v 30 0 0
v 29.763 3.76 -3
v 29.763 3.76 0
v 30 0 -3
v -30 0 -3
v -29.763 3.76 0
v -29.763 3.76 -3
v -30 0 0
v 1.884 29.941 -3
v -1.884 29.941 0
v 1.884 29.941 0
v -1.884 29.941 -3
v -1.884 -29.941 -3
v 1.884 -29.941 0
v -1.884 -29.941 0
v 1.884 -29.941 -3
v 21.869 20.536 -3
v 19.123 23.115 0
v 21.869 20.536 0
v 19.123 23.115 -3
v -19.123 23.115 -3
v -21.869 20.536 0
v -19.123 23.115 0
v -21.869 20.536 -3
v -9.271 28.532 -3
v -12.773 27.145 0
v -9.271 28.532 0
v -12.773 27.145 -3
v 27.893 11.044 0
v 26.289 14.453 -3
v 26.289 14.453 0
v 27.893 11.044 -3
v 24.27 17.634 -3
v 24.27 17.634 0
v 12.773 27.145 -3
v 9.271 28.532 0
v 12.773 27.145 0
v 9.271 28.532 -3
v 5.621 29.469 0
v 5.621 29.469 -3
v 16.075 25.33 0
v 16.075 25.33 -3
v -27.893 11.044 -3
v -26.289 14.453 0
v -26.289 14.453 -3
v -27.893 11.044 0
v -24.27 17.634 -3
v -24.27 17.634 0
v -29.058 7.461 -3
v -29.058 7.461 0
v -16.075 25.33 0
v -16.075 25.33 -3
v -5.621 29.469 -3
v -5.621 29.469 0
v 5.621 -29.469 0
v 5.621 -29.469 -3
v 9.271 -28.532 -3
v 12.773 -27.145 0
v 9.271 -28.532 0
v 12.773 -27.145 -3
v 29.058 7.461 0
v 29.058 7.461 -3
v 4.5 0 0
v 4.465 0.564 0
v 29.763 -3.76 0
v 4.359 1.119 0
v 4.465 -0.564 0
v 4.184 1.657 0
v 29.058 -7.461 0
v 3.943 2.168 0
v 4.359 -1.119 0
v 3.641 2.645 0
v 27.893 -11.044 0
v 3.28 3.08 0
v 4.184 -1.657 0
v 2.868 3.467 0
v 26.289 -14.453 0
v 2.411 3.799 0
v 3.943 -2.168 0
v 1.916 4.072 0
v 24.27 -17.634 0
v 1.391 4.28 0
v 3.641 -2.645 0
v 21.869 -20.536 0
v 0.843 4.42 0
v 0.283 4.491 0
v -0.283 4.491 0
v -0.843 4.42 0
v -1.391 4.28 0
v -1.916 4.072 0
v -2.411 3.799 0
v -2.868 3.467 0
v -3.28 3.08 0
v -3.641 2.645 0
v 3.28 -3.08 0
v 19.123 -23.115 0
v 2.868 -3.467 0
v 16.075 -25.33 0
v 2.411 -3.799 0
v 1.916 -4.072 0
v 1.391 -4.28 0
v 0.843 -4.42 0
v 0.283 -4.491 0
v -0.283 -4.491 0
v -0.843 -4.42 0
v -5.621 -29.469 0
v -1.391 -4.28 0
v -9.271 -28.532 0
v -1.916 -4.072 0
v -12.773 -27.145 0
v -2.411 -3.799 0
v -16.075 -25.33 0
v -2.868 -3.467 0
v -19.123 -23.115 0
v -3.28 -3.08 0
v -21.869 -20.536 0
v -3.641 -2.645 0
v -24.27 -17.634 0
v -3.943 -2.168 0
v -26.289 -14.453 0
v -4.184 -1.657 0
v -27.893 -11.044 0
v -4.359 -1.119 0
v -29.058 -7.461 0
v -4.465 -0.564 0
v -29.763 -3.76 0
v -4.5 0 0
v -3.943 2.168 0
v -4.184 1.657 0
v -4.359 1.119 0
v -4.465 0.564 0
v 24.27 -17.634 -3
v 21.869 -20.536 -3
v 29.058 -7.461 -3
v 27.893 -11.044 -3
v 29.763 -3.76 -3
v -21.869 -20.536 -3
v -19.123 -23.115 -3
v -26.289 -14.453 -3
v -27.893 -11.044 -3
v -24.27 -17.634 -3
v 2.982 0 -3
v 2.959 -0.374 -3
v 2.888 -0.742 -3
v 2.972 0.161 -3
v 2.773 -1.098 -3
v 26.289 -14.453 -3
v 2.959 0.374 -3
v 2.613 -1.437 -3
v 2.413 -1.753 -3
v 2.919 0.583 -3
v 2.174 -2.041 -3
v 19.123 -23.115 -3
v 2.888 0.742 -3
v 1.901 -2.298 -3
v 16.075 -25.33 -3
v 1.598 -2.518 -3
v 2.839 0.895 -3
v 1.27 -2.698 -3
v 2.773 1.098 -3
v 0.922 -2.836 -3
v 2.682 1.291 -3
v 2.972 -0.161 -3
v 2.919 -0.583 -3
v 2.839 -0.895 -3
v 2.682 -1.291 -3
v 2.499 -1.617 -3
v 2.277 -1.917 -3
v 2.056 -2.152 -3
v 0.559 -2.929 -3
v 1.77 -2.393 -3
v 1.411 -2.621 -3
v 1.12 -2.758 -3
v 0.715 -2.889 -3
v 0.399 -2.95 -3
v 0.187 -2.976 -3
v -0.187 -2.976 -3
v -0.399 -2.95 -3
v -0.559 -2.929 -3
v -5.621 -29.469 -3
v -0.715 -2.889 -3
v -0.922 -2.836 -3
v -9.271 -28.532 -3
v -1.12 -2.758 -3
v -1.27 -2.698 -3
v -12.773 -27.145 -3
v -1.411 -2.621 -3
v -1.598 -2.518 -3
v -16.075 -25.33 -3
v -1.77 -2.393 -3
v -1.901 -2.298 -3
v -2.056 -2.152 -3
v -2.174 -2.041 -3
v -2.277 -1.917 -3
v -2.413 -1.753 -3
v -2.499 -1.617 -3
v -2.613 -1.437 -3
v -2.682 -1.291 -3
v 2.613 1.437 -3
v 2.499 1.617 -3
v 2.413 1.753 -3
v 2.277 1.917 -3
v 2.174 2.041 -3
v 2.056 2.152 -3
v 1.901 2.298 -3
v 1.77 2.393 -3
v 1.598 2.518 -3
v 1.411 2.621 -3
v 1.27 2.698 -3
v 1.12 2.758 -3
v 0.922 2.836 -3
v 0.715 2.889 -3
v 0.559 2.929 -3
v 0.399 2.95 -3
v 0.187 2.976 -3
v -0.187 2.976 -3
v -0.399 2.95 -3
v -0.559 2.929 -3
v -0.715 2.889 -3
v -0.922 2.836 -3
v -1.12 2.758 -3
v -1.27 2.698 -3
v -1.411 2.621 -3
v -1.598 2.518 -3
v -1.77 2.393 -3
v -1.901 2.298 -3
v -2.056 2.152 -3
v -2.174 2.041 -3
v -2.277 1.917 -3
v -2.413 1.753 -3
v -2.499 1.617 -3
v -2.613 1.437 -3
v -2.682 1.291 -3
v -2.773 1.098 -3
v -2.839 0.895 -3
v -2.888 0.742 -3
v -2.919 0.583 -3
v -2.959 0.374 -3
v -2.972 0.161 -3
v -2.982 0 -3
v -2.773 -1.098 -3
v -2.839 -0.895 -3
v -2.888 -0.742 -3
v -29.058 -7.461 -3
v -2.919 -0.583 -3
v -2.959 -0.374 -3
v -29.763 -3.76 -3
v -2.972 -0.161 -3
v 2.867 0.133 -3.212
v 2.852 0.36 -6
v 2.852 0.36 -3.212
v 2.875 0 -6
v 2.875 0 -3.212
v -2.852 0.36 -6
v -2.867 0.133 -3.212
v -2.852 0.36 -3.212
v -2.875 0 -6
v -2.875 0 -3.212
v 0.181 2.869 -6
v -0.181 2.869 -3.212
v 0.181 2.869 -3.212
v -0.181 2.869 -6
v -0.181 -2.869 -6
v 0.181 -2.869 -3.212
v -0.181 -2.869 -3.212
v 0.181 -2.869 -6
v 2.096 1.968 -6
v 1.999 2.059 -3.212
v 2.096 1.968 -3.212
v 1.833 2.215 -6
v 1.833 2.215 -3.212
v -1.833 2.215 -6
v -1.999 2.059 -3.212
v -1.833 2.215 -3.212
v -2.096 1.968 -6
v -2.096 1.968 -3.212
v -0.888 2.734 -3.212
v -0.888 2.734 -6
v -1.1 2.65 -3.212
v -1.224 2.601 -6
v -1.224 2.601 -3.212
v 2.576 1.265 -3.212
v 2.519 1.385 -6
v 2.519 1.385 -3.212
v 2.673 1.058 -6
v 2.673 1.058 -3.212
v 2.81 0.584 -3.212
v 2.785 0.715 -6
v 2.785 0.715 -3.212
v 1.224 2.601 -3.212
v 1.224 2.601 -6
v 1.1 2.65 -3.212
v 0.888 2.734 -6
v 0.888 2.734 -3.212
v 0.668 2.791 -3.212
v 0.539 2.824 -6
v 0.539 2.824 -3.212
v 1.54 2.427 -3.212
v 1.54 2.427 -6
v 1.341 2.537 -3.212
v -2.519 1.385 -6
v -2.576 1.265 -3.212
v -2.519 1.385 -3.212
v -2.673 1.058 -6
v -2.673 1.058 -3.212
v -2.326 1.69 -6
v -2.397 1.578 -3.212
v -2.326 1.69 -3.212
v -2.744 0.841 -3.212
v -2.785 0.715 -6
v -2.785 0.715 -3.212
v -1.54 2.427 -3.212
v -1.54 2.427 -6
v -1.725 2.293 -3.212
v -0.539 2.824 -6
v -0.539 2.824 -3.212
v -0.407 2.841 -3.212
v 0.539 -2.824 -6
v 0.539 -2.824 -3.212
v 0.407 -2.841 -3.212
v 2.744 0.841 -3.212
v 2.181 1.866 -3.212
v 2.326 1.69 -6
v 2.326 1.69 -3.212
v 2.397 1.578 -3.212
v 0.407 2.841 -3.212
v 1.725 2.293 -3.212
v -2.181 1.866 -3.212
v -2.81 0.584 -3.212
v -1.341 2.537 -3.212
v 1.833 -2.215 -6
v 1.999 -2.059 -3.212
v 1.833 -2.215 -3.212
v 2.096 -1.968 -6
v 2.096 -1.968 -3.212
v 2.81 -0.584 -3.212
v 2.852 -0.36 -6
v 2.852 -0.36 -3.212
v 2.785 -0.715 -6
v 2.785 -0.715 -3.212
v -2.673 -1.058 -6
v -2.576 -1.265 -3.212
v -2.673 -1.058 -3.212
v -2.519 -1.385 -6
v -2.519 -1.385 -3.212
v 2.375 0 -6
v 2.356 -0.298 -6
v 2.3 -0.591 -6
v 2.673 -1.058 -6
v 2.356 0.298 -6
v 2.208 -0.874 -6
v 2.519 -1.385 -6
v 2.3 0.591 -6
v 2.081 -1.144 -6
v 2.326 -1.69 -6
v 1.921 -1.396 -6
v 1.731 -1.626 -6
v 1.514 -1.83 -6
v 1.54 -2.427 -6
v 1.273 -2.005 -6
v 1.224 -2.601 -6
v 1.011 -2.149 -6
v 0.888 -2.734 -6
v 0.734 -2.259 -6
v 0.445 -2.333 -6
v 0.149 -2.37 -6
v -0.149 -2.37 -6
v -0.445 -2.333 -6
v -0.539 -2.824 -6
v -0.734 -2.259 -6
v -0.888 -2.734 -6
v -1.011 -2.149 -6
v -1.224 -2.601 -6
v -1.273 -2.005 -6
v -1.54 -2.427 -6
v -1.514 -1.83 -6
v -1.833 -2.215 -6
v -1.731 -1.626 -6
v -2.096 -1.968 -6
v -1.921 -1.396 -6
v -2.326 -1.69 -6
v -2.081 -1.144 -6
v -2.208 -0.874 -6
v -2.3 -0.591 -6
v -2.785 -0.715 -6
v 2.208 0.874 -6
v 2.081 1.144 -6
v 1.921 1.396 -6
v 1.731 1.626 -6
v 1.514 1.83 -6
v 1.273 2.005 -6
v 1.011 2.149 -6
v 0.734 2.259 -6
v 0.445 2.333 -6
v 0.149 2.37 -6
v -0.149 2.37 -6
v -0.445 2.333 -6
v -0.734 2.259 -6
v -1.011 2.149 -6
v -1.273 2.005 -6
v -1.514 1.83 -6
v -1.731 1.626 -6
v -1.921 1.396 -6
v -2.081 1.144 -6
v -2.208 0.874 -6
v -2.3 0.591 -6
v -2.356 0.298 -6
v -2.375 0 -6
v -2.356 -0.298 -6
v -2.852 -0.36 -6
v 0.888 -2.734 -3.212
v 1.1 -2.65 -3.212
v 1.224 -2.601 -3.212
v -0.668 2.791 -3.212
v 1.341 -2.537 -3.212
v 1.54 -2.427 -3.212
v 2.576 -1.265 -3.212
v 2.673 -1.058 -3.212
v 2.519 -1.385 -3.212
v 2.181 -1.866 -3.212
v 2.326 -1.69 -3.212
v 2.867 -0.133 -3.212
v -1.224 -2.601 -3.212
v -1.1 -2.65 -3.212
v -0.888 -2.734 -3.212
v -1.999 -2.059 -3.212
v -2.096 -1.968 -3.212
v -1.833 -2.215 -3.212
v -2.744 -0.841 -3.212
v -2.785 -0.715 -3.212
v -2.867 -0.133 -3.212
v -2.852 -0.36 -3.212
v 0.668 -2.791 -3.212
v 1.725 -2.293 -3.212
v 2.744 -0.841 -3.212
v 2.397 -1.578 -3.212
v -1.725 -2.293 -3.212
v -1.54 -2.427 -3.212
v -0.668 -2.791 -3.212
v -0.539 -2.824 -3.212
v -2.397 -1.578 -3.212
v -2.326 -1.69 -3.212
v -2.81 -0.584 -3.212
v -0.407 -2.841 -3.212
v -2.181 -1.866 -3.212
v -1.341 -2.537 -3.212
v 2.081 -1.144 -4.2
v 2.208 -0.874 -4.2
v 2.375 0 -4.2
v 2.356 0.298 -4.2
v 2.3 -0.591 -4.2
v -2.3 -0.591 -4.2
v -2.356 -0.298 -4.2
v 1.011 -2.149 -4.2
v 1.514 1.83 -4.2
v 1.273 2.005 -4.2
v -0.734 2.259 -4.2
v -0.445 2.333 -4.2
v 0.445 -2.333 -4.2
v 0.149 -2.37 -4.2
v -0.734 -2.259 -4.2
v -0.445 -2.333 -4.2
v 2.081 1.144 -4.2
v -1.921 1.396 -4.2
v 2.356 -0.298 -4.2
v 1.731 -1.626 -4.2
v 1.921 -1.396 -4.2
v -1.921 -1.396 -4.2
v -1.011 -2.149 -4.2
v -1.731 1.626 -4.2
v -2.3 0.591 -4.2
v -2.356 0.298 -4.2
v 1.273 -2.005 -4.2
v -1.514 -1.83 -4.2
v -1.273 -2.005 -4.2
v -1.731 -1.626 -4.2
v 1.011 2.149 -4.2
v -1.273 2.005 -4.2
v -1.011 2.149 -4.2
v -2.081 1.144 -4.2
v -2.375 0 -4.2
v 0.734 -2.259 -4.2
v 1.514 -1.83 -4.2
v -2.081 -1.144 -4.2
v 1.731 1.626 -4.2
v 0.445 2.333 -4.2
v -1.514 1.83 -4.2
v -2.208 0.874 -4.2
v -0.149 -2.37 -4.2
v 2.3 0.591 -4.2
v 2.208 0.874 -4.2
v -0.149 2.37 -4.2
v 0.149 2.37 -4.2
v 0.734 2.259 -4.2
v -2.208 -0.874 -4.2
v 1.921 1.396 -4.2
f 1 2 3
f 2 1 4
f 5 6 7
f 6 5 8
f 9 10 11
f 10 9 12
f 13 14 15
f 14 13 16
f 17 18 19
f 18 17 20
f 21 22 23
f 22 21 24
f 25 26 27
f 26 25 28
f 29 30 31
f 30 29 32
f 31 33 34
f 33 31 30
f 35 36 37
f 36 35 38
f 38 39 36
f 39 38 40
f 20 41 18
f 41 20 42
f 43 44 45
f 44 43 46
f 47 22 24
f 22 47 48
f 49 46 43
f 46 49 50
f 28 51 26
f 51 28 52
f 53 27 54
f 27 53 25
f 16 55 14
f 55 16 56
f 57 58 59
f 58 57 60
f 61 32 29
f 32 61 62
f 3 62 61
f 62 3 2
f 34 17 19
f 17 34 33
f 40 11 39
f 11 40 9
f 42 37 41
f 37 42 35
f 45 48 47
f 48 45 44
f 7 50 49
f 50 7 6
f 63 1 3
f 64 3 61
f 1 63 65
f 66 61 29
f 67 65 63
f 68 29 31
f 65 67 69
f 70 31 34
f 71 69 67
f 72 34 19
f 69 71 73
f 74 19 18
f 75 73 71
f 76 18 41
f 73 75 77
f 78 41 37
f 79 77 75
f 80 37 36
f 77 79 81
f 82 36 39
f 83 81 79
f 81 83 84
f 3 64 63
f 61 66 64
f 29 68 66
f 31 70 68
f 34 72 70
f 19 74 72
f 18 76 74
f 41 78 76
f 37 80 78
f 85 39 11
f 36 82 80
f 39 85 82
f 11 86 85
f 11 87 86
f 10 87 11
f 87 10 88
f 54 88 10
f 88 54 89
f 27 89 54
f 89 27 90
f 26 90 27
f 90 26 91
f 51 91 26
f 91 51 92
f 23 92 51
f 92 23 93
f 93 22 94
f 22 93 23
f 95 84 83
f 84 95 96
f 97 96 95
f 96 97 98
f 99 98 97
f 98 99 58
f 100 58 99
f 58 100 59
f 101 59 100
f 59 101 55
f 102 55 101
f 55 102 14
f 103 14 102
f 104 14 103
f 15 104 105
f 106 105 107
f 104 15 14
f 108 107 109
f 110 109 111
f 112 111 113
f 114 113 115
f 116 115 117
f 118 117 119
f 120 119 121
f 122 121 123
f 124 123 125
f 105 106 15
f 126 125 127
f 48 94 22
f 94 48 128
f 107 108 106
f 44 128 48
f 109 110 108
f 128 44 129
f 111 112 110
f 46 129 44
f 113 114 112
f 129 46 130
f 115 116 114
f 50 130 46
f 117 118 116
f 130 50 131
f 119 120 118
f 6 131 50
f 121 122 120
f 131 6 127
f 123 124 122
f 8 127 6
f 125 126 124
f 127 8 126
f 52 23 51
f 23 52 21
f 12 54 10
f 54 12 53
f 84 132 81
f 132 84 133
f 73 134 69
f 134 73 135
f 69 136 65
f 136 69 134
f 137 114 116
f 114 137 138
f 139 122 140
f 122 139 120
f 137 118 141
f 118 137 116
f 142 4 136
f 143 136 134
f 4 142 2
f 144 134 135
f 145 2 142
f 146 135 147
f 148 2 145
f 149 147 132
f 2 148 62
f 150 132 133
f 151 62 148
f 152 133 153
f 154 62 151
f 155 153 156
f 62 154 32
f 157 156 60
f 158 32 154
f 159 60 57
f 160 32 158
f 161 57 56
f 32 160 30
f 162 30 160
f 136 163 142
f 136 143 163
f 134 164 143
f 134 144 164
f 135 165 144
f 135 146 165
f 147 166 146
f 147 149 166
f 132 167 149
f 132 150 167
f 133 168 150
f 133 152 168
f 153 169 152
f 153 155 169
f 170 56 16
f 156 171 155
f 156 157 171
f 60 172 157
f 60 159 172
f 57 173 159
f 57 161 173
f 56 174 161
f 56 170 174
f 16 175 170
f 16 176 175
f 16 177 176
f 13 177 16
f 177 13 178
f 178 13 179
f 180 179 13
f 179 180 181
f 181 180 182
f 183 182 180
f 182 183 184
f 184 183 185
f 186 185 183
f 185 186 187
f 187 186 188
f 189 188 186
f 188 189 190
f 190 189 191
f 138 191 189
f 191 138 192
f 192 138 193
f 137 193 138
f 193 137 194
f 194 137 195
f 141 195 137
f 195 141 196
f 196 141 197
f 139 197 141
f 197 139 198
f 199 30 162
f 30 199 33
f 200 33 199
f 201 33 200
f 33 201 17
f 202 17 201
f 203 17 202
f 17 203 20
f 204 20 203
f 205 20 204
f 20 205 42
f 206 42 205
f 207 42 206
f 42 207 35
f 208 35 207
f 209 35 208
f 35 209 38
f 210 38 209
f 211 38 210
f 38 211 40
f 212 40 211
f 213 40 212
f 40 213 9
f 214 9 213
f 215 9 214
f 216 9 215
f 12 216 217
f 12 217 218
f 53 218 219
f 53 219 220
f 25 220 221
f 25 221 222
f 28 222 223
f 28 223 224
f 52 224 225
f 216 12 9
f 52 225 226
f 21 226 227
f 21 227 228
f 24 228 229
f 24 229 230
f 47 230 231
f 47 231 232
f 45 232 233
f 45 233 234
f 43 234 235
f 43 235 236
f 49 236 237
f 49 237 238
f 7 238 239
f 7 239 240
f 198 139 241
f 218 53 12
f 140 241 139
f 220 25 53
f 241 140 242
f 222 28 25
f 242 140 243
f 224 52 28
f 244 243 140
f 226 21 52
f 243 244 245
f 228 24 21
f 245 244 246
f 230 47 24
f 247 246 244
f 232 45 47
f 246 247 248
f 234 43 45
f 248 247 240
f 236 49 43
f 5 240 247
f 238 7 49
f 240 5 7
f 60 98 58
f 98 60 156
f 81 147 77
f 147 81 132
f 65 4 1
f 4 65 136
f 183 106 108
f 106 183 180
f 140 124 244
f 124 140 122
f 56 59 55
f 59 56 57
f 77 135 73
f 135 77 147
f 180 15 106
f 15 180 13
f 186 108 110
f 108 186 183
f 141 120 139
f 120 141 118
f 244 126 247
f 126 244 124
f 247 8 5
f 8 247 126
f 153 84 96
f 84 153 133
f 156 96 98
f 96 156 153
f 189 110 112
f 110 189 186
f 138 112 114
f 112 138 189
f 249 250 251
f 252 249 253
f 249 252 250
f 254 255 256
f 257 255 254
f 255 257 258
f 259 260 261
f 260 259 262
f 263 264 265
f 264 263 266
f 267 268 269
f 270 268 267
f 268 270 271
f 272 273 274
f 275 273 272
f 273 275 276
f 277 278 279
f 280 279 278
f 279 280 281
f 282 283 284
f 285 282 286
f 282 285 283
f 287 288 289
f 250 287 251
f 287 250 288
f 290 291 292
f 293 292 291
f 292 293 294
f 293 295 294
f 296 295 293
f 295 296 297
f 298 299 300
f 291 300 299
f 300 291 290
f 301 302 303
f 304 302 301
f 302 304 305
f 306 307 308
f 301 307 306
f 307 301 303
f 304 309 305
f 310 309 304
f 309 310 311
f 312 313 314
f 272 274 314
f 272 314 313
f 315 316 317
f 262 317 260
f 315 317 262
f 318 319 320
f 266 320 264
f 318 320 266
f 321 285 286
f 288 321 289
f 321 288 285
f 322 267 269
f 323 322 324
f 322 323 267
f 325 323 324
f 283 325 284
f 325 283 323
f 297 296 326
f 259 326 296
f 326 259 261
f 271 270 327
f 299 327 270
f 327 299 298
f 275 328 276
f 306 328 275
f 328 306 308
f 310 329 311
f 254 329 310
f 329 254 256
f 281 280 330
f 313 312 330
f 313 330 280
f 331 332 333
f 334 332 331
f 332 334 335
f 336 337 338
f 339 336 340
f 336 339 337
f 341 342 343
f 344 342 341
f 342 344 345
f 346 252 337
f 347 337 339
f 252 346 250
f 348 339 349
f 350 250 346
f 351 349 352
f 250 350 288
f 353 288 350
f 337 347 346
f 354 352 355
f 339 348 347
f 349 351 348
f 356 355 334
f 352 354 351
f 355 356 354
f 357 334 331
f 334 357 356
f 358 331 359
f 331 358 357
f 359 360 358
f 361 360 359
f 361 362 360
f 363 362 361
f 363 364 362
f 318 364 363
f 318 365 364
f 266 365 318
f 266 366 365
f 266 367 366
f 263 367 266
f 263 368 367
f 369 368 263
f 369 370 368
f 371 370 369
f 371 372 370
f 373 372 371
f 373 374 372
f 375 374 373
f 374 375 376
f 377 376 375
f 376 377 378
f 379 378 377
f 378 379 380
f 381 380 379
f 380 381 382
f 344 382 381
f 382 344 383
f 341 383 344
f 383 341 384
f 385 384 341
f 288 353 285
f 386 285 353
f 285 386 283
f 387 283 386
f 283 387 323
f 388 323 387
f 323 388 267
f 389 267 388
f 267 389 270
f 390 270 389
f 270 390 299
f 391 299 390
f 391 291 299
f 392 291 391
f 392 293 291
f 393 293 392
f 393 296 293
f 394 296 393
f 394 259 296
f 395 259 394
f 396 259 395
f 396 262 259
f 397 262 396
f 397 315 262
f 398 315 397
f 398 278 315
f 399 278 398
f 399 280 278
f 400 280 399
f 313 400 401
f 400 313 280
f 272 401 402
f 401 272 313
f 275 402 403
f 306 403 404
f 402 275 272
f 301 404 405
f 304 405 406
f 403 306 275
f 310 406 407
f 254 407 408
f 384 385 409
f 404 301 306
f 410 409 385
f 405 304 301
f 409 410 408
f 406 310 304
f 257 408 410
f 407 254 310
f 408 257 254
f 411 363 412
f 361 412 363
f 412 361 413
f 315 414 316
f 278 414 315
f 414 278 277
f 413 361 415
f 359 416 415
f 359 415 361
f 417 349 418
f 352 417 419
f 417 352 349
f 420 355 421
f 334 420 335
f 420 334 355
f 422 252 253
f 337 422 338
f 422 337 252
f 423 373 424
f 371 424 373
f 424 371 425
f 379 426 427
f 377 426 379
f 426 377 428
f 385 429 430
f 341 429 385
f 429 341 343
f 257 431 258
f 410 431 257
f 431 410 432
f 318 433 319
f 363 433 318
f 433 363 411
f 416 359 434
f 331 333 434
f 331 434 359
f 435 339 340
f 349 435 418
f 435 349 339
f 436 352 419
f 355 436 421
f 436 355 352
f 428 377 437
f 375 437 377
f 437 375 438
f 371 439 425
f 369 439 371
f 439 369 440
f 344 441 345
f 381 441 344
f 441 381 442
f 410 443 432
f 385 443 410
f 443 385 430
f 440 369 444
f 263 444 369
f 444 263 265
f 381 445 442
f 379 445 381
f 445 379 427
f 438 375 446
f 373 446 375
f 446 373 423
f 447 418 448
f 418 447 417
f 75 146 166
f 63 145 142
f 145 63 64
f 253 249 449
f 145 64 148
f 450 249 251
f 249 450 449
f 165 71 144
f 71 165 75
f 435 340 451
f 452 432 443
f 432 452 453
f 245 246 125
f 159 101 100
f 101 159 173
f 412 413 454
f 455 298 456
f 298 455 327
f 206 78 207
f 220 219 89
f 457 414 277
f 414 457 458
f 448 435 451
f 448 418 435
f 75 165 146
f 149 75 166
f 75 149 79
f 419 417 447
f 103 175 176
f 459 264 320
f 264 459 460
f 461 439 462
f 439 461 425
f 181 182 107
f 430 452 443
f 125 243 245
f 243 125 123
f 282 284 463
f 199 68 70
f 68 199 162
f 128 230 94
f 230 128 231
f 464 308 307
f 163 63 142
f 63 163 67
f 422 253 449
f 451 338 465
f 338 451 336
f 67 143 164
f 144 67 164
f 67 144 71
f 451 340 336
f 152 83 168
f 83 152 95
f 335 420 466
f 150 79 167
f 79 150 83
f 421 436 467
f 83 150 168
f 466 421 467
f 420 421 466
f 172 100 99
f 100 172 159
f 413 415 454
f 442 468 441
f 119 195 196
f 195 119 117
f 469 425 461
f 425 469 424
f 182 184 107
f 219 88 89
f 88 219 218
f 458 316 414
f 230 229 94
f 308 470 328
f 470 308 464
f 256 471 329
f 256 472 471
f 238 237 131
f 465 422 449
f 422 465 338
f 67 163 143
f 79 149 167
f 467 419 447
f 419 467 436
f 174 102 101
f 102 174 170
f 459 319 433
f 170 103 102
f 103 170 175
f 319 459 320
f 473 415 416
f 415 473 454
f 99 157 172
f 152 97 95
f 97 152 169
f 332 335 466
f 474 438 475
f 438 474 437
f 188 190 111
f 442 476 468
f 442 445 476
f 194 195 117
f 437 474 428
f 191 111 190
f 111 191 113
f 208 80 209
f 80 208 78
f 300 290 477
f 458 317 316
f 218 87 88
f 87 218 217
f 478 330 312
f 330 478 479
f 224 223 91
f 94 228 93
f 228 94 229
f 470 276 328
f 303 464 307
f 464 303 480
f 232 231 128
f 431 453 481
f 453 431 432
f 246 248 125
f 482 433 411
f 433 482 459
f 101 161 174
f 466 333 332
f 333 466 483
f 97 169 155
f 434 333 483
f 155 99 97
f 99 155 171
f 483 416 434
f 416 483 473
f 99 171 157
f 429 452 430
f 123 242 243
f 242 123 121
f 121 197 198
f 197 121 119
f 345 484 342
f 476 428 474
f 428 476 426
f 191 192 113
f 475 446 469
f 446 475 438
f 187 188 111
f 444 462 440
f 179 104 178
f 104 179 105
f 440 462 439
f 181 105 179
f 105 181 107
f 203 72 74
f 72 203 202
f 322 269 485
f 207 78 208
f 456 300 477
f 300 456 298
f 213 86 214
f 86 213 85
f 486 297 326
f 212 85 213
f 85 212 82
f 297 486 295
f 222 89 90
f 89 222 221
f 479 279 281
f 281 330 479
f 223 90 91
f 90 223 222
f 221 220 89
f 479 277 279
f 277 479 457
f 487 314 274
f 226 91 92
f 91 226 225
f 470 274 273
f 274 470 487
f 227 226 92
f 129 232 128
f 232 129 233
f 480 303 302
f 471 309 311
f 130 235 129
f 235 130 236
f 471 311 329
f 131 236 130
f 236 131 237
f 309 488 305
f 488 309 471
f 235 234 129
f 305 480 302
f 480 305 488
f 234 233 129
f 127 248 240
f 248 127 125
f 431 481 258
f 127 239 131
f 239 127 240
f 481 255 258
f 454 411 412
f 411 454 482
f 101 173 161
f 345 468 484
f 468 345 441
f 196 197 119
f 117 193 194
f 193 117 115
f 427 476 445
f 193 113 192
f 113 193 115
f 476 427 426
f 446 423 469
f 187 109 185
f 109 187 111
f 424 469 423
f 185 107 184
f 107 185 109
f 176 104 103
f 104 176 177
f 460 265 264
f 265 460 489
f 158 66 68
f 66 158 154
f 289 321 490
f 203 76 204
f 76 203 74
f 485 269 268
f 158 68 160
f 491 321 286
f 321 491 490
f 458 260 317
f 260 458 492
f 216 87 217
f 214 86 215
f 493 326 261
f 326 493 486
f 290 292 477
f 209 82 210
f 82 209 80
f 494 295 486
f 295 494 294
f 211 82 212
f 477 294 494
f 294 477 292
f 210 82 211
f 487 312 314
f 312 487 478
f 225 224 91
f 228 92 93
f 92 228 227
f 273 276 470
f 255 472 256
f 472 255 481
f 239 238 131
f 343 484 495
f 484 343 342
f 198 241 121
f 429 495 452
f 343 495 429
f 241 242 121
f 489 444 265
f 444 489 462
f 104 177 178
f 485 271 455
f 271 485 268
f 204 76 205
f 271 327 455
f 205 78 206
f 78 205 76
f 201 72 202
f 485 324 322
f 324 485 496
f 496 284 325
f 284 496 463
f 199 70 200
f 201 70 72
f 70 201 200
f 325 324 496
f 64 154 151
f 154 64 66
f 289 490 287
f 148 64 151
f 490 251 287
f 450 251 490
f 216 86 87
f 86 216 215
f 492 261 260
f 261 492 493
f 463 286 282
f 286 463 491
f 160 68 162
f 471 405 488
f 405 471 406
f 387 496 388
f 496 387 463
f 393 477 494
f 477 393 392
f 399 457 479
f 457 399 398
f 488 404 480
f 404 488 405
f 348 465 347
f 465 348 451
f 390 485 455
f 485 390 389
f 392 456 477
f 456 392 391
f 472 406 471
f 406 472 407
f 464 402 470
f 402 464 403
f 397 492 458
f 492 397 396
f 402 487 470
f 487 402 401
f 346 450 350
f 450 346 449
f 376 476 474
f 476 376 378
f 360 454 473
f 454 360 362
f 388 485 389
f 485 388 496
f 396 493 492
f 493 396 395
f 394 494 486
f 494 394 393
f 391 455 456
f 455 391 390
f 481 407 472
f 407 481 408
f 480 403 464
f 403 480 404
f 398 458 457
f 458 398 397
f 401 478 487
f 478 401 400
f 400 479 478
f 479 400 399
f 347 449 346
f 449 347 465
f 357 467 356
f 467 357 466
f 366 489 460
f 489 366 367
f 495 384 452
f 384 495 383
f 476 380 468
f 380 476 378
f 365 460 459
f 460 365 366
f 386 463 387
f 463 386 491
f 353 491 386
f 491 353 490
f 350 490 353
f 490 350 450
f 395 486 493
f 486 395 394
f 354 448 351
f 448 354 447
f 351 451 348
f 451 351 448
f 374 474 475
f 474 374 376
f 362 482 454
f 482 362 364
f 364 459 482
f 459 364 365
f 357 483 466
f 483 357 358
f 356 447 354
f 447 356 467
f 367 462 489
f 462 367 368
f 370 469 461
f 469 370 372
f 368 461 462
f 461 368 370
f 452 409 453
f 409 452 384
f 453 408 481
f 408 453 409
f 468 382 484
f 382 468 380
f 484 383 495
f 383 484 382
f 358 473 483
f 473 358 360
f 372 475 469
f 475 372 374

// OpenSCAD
$fn = 50;


difference() {
	union() {
		translate(v = [0, 0, -3.0000000000]) {
			cylinder(h = 3, r = 30.0000000000);
		}
		translate(v = [0, 0, -6.0000000000]) {
			cylinder(h = 6, r = 2.8750000000);
		}
	}
	union() {
		translate(v = [0, 0, 0]) {
			rotate(a = [0, 0, 0]) {
				difference() {
					union() {
						translate(v = [0, 0, -6.0000000000]) {
							cylinder(h = 6, r = 2.2500000000);
						}
						translate(v = [0, 0, -4.2000000000]) {
							cylinder(h = 4.2000000000, r1 = 2.3750000000, r2 = 4.5000000000);
						}
						translate(v = [0, 0, -6.0000000000]) {
							cylinder(h = 6, r = 2.3750000000);
						}
						translate(v = [0, 0, -6.0000000000]) {
							cylinder(h = 6, r = 2.2500000000);
						}
					}
					union();
				}
			}
		}
	}
}
